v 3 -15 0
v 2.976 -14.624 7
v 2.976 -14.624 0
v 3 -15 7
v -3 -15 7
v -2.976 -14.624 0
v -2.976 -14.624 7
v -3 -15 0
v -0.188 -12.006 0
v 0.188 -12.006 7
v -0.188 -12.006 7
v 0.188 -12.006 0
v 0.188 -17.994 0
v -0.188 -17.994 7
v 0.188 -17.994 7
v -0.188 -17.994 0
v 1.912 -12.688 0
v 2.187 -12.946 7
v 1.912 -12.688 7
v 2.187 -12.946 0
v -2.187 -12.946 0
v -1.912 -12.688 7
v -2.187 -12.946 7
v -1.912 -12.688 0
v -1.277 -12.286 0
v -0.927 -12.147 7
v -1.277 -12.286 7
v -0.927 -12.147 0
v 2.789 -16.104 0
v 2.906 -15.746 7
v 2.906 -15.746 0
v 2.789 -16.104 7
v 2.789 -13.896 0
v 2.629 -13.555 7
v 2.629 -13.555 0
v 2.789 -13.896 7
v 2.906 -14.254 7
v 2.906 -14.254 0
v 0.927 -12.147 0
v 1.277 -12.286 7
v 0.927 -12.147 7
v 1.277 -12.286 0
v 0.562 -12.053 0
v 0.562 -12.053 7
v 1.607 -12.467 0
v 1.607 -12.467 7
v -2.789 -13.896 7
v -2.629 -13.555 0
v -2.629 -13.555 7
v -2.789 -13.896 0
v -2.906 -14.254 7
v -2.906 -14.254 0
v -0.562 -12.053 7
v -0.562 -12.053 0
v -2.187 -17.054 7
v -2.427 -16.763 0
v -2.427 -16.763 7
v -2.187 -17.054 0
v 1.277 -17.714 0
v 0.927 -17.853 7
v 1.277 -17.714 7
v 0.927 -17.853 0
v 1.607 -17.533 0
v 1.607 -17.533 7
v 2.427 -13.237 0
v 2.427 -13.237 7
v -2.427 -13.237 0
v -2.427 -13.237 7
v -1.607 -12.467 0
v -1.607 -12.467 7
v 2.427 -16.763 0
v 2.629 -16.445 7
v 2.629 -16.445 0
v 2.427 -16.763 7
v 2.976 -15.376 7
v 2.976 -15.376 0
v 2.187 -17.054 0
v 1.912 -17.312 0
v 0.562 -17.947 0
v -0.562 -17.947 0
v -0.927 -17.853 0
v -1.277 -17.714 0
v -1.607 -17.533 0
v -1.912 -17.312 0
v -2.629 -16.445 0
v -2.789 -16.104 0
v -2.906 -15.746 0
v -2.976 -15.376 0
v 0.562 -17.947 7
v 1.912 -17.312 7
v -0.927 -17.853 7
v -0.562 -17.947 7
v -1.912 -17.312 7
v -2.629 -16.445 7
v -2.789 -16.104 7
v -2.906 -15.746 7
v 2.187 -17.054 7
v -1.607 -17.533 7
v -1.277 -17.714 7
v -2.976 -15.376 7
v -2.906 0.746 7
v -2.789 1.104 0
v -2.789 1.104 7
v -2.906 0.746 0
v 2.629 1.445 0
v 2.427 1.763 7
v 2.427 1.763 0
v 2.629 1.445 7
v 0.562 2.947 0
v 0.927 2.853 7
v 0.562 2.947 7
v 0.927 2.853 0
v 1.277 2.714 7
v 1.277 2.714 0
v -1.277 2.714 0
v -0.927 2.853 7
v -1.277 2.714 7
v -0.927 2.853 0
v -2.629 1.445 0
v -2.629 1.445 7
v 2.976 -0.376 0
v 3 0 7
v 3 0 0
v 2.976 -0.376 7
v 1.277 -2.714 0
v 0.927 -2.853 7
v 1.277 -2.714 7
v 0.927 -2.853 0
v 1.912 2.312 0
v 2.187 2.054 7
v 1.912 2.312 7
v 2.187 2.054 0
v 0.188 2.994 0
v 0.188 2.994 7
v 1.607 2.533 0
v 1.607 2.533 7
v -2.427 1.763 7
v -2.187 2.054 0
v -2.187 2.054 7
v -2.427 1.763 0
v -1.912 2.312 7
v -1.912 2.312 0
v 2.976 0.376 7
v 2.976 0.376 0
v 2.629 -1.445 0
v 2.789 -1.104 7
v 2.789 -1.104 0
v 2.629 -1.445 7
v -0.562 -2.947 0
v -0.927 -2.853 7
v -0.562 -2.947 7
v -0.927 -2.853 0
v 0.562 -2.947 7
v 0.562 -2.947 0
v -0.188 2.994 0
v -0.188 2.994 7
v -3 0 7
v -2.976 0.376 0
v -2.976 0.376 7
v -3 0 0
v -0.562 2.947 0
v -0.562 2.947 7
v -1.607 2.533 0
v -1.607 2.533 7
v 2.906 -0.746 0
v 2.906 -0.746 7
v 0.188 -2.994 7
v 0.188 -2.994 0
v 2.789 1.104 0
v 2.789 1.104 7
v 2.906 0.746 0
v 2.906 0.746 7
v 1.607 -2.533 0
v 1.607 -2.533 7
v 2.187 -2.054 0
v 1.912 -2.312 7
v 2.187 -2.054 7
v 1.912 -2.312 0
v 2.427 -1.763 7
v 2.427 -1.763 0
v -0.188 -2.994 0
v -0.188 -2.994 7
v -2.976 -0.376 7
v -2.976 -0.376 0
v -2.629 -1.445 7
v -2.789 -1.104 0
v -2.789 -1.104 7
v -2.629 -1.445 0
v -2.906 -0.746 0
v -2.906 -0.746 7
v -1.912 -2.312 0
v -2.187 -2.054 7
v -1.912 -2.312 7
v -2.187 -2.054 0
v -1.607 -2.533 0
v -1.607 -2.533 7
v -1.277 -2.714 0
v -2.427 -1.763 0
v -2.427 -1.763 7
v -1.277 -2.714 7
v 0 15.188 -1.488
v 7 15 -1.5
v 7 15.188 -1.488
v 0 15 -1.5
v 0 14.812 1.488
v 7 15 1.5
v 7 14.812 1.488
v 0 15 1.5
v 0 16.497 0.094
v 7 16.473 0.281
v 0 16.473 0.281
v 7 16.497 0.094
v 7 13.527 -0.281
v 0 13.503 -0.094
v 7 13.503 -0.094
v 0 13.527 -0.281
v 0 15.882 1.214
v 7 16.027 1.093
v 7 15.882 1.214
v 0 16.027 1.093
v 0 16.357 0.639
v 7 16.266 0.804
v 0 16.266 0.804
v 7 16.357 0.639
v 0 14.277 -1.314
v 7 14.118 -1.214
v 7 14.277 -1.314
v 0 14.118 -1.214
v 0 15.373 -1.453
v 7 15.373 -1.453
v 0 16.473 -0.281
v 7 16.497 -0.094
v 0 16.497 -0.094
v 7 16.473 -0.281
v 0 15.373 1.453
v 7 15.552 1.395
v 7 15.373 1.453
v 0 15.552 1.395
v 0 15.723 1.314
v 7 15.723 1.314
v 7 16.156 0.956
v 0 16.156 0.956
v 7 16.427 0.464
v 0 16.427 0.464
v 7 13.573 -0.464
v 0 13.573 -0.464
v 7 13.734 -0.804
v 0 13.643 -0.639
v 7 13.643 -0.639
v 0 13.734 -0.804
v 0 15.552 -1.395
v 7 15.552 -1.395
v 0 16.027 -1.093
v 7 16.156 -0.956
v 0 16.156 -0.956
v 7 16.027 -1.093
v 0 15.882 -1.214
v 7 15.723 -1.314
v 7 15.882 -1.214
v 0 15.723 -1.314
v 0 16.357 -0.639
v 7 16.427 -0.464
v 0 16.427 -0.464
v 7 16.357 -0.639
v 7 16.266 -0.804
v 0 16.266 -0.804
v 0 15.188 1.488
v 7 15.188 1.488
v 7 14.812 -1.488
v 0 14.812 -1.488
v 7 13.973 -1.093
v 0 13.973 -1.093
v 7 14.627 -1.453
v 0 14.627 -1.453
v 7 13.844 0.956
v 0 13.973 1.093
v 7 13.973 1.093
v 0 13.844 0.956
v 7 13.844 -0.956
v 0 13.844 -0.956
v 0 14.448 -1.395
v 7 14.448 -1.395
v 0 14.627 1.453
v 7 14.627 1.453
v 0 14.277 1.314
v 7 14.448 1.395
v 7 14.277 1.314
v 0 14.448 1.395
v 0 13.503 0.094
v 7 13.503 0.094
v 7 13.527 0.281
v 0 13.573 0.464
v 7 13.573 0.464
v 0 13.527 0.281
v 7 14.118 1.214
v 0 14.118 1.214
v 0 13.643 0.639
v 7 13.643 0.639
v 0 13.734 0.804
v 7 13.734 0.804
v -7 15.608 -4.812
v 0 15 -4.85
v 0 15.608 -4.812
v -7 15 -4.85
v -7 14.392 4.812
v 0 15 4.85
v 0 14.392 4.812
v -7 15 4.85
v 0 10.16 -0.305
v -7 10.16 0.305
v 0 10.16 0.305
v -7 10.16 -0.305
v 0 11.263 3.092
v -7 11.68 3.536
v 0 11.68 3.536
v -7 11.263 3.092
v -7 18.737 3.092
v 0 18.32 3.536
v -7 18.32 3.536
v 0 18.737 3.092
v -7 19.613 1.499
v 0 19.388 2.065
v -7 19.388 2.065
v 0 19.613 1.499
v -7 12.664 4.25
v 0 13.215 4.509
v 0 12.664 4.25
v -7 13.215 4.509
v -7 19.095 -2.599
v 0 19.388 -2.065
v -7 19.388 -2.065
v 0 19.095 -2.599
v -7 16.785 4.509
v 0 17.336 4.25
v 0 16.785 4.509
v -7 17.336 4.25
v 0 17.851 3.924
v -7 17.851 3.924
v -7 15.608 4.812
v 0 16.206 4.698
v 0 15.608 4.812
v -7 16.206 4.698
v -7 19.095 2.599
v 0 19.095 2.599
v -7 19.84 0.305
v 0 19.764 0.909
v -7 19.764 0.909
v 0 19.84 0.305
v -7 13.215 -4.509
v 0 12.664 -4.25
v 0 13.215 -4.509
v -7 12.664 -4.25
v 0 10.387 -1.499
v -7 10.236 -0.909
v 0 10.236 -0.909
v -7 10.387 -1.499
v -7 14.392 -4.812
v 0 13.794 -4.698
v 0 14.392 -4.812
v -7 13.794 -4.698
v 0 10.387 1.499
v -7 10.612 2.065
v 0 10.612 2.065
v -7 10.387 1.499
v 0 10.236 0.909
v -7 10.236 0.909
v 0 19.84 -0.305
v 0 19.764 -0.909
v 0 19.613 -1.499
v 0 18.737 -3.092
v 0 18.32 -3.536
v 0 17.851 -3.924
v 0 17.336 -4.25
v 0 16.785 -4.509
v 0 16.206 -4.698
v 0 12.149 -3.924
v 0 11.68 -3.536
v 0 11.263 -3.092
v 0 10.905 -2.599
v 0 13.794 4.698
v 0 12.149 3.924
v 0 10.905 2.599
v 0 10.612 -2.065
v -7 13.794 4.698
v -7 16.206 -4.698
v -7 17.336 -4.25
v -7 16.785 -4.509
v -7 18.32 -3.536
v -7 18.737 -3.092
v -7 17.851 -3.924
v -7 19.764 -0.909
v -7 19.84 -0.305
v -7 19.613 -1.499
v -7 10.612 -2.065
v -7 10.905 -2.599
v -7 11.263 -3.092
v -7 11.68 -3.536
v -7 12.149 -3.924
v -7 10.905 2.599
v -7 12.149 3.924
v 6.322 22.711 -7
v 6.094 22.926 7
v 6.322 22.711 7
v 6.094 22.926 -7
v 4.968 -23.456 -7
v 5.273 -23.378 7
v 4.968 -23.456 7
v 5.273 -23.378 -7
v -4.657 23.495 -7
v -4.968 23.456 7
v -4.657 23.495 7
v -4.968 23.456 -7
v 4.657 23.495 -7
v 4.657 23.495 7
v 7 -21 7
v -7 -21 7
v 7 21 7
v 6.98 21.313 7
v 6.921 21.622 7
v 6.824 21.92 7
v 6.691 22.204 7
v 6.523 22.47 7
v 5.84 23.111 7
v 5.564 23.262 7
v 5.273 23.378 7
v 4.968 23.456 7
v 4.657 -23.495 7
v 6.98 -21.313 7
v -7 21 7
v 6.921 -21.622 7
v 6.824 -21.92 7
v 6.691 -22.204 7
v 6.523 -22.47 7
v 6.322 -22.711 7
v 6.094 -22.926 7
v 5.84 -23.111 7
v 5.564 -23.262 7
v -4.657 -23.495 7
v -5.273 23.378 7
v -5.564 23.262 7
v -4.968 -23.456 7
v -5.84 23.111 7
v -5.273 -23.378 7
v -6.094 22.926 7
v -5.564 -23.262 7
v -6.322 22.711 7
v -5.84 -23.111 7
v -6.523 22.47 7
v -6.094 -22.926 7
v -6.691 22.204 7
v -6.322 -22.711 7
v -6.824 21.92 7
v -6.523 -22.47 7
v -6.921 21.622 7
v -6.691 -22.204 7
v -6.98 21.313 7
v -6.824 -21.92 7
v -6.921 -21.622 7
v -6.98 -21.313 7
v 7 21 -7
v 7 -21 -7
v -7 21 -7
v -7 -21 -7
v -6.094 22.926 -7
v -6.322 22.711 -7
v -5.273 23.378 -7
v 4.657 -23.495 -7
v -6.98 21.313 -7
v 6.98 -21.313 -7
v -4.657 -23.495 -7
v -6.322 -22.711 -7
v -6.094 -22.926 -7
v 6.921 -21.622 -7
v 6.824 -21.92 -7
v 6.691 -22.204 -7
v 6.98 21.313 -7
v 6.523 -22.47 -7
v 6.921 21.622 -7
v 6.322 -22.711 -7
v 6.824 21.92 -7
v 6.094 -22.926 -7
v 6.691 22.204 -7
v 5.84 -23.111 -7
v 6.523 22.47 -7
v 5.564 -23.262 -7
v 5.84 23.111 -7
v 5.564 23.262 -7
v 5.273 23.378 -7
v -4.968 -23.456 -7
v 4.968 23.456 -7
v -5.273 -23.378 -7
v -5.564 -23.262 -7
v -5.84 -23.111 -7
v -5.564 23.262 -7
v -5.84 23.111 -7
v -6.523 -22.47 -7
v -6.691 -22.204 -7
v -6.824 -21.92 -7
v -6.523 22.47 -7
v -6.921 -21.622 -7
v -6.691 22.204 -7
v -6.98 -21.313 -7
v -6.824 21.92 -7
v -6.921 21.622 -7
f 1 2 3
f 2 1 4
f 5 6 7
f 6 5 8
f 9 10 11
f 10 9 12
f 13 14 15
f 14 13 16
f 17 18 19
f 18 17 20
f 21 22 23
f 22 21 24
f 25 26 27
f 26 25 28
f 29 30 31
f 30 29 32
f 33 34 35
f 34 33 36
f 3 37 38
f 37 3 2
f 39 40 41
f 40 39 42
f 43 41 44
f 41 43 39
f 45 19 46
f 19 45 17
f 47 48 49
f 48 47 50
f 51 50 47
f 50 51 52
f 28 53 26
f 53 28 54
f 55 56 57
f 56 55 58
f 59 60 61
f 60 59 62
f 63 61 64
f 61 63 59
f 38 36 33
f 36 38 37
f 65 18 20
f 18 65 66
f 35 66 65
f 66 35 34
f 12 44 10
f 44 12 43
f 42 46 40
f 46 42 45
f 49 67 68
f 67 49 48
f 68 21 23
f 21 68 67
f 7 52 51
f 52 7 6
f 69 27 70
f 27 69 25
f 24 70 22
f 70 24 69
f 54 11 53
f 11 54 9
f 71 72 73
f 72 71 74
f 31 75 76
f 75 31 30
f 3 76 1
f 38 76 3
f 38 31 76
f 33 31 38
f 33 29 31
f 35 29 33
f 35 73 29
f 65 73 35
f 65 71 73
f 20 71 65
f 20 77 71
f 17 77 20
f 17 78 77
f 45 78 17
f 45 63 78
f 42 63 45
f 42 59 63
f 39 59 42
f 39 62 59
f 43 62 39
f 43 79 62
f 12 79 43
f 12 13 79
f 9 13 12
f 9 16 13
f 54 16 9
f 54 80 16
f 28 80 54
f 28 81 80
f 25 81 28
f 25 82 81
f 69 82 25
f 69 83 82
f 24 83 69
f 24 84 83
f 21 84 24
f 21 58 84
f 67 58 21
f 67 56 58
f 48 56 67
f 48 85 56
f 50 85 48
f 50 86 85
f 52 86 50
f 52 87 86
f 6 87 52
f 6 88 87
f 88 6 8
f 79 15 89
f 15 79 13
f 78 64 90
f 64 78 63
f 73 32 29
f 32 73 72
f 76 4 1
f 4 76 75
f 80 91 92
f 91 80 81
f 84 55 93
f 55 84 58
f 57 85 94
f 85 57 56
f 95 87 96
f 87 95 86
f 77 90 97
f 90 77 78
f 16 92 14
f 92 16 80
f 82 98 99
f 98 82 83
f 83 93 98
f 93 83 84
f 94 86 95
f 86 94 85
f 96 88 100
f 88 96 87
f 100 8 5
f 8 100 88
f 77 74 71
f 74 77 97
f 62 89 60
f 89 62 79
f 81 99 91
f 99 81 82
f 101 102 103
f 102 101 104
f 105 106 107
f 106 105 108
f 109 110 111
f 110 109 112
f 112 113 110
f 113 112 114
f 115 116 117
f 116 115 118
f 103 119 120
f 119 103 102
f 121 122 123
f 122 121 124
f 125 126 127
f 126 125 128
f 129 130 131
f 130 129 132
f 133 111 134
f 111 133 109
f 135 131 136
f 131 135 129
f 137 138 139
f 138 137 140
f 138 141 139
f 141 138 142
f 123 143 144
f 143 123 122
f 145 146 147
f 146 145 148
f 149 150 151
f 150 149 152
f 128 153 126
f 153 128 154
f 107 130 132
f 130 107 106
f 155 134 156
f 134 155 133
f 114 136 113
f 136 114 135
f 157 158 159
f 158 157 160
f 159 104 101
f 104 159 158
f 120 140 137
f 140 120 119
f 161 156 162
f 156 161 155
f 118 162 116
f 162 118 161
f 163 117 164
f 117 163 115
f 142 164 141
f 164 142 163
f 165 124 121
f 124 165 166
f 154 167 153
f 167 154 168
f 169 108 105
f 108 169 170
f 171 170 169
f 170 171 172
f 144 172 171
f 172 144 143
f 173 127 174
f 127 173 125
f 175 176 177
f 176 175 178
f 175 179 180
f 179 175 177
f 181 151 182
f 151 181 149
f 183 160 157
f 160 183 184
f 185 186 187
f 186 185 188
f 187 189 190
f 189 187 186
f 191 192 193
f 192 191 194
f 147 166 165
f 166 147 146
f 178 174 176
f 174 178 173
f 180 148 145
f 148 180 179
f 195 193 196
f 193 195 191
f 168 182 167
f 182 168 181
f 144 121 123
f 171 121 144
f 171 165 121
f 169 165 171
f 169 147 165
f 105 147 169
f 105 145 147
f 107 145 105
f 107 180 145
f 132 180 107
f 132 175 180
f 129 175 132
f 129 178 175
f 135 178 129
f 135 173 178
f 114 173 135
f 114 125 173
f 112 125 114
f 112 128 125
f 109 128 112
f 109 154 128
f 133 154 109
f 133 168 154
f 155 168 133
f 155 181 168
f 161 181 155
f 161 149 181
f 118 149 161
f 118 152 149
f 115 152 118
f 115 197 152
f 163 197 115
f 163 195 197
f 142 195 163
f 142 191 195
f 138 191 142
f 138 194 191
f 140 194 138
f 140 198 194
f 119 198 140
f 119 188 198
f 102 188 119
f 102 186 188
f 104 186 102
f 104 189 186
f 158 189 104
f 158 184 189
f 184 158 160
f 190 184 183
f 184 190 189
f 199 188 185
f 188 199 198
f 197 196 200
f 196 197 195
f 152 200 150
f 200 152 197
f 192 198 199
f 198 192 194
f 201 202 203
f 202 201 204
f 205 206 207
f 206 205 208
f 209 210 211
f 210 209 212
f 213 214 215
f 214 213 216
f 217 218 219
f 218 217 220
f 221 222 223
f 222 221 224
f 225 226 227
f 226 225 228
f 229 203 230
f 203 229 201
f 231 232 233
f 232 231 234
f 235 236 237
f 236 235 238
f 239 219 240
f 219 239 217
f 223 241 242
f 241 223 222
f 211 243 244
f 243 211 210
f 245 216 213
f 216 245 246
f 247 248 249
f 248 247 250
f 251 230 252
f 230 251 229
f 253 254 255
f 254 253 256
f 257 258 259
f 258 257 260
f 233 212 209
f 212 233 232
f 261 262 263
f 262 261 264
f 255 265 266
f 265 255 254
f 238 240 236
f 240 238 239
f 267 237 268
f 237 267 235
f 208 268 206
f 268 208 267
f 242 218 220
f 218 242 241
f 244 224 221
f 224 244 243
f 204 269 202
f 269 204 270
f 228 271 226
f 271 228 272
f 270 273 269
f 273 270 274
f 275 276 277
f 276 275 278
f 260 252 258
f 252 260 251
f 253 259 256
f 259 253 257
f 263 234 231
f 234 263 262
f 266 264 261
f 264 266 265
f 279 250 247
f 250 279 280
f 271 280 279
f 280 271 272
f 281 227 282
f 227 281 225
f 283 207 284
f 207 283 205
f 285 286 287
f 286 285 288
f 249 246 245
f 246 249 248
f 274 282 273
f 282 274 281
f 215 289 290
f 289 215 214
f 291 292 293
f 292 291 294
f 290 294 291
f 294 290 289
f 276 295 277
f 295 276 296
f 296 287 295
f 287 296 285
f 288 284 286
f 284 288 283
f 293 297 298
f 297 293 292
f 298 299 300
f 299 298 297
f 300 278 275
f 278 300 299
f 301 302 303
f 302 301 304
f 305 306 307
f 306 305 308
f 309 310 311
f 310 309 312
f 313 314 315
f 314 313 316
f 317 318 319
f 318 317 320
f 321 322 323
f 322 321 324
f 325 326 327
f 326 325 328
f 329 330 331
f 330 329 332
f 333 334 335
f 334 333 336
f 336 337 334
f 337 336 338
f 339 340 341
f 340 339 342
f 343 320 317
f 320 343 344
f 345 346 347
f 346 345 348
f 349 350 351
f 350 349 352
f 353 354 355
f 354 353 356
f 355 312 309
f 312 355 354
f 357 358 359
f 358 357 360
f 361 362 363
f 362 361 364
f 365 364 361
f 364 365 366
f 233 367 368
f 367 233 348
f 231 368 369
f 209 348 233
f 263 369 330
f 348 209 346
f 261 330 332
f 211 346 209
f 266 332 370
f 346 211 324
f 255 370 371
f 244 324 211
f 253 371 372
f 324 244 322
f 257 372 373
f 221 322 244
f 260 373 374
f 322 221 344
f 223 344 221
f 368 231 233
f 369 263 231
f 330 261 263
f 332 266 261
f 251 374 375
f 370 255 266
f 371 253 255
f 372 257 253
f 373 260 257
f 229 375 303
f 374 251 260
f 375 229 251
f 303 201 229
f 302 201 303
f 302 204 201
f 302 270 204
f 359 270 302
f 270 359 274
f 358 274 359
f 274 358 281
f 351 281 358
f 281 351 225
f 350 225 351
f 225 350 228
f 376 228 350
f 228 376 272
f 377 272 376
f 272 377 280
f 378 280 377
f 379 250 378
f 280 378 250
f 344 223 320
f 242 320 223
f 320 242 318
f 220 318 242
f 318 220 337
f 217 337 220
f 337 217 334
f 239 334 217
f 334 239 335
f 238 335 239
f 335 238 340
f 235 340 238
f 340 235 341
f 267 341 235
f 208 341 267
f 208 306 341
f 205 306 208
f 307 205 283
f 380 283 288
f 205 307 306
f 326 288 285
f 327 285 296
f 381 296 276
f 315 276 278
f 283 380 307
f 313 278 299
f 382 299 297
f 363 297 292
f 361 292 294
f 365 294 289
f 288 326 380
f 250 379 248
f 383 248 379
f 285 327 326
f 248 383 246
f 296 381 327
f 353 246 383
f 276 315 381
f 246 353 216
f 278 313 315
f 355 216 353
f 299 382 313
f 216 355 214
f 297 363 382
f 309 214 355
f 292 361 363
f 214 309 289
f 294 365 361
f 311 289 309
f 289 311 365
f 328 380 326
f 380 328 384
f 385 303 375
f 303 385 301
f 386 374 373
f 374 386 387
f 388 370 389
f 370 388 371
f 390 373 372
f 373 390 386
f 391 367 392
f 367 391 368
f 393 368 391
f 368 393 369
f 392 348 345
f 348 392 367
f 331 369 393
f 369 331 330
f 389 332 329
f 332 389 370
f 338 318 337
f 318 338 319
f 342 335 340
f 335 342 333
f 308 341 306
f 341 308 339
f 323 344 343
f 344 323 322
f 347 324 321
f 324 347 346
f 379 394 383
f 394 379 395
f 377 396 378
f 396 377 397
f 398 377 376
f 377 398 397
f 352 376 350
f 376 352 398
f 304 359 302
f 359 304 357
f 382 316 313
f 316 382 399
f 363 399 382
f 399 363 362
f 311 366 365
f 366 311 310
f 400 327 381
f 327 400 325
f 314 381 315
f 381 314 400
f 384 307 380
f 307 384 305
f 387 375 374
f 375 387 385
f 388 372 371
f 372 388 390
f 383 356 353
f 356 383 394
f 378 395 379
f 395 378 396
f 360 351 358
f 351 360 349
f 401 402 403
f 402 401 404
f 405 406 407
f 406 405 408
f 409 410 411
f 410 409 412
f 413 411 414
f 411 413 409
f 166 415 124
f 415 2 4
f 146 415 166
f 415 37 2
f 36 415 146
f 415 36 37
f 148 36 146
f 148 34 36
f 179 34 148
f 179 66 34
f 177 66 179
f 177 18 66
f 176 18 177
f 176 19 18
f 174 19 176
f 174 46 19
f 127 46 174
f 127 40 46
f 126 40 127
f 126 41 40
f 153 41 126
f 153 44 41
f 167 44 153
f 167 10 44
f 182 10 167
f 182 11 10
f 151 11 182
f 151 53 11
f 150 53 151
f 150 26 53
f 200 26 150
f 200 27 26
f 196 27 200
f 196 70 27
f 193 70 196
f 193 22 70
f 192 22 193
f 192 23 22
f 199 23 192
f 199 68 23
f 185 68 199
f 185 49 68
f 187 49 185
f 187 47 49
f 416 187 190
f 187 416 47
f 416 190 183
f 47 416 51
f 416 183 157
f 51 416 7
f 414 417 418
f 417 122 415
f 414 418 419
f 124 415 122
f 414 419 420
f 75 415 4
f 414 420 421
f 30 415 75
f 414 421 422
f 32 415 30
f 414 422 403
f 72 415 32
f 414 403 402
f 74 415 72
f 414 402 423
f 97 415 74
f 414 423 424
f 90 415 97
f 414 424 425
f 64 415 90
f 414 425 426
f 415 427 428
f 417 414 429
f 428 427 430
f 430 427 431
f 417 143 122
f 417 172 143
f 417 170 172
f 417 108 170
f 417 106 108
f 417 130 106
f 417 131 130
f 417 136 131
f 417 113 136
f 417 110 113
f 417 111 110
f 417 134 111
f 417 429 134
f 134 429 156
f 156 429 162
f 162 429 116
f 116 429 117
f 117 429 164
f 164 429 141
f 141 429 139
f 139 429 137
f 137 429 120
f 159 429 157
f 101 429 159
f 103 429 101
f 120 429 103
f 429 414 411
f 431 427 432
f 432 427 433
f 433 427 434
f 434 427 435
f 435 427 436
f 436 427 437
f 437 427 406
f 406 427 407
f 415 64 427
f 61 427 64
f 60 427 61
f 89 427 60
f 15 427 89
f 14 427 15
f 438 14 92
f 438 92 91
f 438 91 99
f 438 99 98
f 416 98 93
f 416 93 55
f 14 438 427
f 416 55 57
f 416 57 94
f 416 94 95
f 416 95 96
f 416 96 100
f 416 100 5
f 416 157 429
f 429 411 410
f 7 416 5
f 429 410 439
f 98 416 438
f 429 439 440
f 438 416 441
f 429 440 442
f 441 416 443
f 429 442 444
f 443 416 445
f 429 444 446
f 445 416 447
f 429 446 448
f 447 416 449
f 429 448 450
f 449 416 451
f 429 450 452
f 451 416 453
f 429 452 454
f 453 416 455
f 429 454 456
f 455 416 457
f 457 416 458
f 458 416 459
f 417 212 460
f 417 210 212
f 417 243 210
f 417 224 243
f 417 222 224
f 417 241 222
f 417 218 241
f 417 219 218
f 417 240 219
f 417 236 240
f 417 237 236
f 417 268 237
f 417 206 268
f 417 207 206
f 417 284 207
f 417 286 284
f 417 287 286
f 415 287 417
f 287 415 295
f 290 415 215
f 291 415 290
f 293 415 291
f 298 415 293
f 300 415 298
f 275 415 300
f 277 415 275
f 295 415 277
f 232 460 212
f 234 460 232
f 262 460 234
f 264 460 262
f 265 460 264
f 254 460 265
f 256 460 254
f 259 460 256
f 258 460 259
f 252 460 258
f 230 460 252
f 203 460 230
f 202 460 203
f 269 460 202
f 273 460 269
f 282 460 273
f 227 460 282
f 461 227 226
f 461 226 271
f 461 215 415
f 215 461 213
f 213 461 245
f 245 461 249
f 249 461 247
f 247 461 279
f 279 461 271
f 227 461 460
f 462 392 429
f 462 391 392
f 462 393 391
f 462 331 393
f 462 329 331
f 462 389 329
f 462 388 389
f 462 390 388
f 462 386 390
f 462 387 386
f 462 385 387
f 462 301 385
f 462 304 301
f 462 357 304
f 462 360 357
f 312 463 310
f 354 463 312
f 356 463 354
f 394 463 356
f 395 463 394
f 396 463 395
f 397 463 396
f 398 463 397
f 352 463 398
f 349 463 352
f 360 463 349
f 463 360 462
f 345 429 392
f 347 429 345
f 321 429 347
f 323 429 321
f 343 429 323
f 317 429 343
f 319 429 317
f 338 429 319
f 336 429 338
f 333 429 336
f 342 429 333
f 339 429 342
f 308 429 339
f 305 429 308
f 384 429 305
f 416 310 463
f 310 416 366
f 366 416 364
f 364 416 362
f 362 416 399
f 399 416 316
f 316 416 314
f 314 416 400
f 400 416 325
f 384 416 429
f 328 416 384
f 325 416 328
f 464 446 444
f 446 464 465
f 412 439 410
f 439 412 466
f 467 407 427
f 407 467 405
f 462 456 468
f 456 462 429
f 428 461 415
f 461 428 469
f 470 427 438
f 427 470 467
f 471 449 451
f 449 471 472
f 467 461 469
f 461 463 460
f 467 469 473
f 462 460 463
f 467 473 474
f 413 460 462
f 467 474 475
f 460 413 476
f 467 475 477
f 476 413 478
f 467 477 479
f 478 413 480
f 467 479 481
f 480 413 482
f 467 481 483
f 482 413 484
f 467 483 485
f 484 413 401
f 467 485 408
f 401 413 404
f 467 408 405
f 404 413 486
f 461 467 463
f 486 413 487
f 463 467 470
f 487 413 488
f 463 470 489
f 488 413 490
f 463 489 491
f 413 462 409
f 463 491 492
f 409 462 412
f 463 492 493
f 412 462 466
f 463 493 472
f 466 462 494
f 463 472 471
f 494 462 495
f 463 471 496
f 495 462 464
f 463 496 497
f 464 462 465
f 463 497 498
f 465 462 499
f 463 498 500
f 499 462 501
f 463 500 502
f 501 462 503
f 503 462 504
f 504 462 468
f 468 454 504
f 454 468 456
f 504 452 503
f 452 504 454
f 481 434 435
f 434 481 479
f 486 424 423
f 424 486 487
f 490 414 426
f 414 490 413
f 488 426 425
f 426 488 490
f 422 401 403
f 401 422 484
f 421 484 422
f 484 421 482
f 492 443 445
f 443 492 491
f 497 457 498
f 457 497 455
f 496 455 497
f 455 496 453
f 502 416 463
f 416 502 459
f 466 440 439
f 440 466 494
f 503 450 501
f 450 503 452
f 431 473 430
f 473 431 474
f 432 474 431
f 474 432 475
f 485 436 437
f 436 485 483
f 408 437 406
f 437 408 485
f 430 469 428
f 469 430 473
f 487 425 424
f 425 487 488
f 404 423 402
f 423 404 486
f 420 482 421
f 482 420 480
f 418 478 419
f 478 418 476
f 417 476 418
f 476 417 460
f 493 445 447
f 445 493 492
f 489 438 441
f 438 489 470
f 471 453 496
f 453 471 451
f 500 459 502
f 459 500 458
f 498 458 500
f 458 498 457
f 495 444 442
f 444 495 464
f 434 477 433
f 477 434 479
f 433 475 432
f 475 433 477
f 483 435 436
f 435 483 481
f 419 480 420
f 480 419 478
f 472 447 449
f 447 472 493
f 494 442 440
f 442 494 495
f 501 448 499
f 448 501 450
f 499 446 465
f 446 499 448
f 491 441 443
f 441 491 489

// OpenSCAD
$fn = 50;


difference() {
	union() {
		translate(v = [0, 0, -7.0000000000]) {
			hull() {
				translate(v = [-4.5000000000, 21.0000000000, 0]) {
					cylinder(h = 14, r = 2.5000000000);
				}
				translate(v = [4.5000000000, 21.0000000000, 0]) {
					cylinder(h = 14, r = 2.5000000000);
				}
				translate(v = [-4.5000000000, -21.0000000000, 0]) {
					cylinder(h = 14, r = 2.5000000000);
				}
				translate(v = [4.5000000000, -21.0000000000, 0]) {
					cylinder(h = 14, r = 2.5000000000);
				}
			}
		}
	}
	union() {
		translate(v = [0.0000000000, -15.0000000000, 0]) {
			cylinder(h = 100, r = 3.0000000000);
		}
		cylinder(h = 100, r = 3.0000000000);
		translate(v = [-50, 15, 0]) {
			rotate(a = [0, 90, 0]) {
				cylinder(h = 100, r = 1.5000000000);
			}
		}
		translate(v = [-100, 15, 0]) {
			rotate(a = [0, 90, 0]) {
				cylinder(h = 100, r = 4.8500000000);
			}
		}
	}
}
